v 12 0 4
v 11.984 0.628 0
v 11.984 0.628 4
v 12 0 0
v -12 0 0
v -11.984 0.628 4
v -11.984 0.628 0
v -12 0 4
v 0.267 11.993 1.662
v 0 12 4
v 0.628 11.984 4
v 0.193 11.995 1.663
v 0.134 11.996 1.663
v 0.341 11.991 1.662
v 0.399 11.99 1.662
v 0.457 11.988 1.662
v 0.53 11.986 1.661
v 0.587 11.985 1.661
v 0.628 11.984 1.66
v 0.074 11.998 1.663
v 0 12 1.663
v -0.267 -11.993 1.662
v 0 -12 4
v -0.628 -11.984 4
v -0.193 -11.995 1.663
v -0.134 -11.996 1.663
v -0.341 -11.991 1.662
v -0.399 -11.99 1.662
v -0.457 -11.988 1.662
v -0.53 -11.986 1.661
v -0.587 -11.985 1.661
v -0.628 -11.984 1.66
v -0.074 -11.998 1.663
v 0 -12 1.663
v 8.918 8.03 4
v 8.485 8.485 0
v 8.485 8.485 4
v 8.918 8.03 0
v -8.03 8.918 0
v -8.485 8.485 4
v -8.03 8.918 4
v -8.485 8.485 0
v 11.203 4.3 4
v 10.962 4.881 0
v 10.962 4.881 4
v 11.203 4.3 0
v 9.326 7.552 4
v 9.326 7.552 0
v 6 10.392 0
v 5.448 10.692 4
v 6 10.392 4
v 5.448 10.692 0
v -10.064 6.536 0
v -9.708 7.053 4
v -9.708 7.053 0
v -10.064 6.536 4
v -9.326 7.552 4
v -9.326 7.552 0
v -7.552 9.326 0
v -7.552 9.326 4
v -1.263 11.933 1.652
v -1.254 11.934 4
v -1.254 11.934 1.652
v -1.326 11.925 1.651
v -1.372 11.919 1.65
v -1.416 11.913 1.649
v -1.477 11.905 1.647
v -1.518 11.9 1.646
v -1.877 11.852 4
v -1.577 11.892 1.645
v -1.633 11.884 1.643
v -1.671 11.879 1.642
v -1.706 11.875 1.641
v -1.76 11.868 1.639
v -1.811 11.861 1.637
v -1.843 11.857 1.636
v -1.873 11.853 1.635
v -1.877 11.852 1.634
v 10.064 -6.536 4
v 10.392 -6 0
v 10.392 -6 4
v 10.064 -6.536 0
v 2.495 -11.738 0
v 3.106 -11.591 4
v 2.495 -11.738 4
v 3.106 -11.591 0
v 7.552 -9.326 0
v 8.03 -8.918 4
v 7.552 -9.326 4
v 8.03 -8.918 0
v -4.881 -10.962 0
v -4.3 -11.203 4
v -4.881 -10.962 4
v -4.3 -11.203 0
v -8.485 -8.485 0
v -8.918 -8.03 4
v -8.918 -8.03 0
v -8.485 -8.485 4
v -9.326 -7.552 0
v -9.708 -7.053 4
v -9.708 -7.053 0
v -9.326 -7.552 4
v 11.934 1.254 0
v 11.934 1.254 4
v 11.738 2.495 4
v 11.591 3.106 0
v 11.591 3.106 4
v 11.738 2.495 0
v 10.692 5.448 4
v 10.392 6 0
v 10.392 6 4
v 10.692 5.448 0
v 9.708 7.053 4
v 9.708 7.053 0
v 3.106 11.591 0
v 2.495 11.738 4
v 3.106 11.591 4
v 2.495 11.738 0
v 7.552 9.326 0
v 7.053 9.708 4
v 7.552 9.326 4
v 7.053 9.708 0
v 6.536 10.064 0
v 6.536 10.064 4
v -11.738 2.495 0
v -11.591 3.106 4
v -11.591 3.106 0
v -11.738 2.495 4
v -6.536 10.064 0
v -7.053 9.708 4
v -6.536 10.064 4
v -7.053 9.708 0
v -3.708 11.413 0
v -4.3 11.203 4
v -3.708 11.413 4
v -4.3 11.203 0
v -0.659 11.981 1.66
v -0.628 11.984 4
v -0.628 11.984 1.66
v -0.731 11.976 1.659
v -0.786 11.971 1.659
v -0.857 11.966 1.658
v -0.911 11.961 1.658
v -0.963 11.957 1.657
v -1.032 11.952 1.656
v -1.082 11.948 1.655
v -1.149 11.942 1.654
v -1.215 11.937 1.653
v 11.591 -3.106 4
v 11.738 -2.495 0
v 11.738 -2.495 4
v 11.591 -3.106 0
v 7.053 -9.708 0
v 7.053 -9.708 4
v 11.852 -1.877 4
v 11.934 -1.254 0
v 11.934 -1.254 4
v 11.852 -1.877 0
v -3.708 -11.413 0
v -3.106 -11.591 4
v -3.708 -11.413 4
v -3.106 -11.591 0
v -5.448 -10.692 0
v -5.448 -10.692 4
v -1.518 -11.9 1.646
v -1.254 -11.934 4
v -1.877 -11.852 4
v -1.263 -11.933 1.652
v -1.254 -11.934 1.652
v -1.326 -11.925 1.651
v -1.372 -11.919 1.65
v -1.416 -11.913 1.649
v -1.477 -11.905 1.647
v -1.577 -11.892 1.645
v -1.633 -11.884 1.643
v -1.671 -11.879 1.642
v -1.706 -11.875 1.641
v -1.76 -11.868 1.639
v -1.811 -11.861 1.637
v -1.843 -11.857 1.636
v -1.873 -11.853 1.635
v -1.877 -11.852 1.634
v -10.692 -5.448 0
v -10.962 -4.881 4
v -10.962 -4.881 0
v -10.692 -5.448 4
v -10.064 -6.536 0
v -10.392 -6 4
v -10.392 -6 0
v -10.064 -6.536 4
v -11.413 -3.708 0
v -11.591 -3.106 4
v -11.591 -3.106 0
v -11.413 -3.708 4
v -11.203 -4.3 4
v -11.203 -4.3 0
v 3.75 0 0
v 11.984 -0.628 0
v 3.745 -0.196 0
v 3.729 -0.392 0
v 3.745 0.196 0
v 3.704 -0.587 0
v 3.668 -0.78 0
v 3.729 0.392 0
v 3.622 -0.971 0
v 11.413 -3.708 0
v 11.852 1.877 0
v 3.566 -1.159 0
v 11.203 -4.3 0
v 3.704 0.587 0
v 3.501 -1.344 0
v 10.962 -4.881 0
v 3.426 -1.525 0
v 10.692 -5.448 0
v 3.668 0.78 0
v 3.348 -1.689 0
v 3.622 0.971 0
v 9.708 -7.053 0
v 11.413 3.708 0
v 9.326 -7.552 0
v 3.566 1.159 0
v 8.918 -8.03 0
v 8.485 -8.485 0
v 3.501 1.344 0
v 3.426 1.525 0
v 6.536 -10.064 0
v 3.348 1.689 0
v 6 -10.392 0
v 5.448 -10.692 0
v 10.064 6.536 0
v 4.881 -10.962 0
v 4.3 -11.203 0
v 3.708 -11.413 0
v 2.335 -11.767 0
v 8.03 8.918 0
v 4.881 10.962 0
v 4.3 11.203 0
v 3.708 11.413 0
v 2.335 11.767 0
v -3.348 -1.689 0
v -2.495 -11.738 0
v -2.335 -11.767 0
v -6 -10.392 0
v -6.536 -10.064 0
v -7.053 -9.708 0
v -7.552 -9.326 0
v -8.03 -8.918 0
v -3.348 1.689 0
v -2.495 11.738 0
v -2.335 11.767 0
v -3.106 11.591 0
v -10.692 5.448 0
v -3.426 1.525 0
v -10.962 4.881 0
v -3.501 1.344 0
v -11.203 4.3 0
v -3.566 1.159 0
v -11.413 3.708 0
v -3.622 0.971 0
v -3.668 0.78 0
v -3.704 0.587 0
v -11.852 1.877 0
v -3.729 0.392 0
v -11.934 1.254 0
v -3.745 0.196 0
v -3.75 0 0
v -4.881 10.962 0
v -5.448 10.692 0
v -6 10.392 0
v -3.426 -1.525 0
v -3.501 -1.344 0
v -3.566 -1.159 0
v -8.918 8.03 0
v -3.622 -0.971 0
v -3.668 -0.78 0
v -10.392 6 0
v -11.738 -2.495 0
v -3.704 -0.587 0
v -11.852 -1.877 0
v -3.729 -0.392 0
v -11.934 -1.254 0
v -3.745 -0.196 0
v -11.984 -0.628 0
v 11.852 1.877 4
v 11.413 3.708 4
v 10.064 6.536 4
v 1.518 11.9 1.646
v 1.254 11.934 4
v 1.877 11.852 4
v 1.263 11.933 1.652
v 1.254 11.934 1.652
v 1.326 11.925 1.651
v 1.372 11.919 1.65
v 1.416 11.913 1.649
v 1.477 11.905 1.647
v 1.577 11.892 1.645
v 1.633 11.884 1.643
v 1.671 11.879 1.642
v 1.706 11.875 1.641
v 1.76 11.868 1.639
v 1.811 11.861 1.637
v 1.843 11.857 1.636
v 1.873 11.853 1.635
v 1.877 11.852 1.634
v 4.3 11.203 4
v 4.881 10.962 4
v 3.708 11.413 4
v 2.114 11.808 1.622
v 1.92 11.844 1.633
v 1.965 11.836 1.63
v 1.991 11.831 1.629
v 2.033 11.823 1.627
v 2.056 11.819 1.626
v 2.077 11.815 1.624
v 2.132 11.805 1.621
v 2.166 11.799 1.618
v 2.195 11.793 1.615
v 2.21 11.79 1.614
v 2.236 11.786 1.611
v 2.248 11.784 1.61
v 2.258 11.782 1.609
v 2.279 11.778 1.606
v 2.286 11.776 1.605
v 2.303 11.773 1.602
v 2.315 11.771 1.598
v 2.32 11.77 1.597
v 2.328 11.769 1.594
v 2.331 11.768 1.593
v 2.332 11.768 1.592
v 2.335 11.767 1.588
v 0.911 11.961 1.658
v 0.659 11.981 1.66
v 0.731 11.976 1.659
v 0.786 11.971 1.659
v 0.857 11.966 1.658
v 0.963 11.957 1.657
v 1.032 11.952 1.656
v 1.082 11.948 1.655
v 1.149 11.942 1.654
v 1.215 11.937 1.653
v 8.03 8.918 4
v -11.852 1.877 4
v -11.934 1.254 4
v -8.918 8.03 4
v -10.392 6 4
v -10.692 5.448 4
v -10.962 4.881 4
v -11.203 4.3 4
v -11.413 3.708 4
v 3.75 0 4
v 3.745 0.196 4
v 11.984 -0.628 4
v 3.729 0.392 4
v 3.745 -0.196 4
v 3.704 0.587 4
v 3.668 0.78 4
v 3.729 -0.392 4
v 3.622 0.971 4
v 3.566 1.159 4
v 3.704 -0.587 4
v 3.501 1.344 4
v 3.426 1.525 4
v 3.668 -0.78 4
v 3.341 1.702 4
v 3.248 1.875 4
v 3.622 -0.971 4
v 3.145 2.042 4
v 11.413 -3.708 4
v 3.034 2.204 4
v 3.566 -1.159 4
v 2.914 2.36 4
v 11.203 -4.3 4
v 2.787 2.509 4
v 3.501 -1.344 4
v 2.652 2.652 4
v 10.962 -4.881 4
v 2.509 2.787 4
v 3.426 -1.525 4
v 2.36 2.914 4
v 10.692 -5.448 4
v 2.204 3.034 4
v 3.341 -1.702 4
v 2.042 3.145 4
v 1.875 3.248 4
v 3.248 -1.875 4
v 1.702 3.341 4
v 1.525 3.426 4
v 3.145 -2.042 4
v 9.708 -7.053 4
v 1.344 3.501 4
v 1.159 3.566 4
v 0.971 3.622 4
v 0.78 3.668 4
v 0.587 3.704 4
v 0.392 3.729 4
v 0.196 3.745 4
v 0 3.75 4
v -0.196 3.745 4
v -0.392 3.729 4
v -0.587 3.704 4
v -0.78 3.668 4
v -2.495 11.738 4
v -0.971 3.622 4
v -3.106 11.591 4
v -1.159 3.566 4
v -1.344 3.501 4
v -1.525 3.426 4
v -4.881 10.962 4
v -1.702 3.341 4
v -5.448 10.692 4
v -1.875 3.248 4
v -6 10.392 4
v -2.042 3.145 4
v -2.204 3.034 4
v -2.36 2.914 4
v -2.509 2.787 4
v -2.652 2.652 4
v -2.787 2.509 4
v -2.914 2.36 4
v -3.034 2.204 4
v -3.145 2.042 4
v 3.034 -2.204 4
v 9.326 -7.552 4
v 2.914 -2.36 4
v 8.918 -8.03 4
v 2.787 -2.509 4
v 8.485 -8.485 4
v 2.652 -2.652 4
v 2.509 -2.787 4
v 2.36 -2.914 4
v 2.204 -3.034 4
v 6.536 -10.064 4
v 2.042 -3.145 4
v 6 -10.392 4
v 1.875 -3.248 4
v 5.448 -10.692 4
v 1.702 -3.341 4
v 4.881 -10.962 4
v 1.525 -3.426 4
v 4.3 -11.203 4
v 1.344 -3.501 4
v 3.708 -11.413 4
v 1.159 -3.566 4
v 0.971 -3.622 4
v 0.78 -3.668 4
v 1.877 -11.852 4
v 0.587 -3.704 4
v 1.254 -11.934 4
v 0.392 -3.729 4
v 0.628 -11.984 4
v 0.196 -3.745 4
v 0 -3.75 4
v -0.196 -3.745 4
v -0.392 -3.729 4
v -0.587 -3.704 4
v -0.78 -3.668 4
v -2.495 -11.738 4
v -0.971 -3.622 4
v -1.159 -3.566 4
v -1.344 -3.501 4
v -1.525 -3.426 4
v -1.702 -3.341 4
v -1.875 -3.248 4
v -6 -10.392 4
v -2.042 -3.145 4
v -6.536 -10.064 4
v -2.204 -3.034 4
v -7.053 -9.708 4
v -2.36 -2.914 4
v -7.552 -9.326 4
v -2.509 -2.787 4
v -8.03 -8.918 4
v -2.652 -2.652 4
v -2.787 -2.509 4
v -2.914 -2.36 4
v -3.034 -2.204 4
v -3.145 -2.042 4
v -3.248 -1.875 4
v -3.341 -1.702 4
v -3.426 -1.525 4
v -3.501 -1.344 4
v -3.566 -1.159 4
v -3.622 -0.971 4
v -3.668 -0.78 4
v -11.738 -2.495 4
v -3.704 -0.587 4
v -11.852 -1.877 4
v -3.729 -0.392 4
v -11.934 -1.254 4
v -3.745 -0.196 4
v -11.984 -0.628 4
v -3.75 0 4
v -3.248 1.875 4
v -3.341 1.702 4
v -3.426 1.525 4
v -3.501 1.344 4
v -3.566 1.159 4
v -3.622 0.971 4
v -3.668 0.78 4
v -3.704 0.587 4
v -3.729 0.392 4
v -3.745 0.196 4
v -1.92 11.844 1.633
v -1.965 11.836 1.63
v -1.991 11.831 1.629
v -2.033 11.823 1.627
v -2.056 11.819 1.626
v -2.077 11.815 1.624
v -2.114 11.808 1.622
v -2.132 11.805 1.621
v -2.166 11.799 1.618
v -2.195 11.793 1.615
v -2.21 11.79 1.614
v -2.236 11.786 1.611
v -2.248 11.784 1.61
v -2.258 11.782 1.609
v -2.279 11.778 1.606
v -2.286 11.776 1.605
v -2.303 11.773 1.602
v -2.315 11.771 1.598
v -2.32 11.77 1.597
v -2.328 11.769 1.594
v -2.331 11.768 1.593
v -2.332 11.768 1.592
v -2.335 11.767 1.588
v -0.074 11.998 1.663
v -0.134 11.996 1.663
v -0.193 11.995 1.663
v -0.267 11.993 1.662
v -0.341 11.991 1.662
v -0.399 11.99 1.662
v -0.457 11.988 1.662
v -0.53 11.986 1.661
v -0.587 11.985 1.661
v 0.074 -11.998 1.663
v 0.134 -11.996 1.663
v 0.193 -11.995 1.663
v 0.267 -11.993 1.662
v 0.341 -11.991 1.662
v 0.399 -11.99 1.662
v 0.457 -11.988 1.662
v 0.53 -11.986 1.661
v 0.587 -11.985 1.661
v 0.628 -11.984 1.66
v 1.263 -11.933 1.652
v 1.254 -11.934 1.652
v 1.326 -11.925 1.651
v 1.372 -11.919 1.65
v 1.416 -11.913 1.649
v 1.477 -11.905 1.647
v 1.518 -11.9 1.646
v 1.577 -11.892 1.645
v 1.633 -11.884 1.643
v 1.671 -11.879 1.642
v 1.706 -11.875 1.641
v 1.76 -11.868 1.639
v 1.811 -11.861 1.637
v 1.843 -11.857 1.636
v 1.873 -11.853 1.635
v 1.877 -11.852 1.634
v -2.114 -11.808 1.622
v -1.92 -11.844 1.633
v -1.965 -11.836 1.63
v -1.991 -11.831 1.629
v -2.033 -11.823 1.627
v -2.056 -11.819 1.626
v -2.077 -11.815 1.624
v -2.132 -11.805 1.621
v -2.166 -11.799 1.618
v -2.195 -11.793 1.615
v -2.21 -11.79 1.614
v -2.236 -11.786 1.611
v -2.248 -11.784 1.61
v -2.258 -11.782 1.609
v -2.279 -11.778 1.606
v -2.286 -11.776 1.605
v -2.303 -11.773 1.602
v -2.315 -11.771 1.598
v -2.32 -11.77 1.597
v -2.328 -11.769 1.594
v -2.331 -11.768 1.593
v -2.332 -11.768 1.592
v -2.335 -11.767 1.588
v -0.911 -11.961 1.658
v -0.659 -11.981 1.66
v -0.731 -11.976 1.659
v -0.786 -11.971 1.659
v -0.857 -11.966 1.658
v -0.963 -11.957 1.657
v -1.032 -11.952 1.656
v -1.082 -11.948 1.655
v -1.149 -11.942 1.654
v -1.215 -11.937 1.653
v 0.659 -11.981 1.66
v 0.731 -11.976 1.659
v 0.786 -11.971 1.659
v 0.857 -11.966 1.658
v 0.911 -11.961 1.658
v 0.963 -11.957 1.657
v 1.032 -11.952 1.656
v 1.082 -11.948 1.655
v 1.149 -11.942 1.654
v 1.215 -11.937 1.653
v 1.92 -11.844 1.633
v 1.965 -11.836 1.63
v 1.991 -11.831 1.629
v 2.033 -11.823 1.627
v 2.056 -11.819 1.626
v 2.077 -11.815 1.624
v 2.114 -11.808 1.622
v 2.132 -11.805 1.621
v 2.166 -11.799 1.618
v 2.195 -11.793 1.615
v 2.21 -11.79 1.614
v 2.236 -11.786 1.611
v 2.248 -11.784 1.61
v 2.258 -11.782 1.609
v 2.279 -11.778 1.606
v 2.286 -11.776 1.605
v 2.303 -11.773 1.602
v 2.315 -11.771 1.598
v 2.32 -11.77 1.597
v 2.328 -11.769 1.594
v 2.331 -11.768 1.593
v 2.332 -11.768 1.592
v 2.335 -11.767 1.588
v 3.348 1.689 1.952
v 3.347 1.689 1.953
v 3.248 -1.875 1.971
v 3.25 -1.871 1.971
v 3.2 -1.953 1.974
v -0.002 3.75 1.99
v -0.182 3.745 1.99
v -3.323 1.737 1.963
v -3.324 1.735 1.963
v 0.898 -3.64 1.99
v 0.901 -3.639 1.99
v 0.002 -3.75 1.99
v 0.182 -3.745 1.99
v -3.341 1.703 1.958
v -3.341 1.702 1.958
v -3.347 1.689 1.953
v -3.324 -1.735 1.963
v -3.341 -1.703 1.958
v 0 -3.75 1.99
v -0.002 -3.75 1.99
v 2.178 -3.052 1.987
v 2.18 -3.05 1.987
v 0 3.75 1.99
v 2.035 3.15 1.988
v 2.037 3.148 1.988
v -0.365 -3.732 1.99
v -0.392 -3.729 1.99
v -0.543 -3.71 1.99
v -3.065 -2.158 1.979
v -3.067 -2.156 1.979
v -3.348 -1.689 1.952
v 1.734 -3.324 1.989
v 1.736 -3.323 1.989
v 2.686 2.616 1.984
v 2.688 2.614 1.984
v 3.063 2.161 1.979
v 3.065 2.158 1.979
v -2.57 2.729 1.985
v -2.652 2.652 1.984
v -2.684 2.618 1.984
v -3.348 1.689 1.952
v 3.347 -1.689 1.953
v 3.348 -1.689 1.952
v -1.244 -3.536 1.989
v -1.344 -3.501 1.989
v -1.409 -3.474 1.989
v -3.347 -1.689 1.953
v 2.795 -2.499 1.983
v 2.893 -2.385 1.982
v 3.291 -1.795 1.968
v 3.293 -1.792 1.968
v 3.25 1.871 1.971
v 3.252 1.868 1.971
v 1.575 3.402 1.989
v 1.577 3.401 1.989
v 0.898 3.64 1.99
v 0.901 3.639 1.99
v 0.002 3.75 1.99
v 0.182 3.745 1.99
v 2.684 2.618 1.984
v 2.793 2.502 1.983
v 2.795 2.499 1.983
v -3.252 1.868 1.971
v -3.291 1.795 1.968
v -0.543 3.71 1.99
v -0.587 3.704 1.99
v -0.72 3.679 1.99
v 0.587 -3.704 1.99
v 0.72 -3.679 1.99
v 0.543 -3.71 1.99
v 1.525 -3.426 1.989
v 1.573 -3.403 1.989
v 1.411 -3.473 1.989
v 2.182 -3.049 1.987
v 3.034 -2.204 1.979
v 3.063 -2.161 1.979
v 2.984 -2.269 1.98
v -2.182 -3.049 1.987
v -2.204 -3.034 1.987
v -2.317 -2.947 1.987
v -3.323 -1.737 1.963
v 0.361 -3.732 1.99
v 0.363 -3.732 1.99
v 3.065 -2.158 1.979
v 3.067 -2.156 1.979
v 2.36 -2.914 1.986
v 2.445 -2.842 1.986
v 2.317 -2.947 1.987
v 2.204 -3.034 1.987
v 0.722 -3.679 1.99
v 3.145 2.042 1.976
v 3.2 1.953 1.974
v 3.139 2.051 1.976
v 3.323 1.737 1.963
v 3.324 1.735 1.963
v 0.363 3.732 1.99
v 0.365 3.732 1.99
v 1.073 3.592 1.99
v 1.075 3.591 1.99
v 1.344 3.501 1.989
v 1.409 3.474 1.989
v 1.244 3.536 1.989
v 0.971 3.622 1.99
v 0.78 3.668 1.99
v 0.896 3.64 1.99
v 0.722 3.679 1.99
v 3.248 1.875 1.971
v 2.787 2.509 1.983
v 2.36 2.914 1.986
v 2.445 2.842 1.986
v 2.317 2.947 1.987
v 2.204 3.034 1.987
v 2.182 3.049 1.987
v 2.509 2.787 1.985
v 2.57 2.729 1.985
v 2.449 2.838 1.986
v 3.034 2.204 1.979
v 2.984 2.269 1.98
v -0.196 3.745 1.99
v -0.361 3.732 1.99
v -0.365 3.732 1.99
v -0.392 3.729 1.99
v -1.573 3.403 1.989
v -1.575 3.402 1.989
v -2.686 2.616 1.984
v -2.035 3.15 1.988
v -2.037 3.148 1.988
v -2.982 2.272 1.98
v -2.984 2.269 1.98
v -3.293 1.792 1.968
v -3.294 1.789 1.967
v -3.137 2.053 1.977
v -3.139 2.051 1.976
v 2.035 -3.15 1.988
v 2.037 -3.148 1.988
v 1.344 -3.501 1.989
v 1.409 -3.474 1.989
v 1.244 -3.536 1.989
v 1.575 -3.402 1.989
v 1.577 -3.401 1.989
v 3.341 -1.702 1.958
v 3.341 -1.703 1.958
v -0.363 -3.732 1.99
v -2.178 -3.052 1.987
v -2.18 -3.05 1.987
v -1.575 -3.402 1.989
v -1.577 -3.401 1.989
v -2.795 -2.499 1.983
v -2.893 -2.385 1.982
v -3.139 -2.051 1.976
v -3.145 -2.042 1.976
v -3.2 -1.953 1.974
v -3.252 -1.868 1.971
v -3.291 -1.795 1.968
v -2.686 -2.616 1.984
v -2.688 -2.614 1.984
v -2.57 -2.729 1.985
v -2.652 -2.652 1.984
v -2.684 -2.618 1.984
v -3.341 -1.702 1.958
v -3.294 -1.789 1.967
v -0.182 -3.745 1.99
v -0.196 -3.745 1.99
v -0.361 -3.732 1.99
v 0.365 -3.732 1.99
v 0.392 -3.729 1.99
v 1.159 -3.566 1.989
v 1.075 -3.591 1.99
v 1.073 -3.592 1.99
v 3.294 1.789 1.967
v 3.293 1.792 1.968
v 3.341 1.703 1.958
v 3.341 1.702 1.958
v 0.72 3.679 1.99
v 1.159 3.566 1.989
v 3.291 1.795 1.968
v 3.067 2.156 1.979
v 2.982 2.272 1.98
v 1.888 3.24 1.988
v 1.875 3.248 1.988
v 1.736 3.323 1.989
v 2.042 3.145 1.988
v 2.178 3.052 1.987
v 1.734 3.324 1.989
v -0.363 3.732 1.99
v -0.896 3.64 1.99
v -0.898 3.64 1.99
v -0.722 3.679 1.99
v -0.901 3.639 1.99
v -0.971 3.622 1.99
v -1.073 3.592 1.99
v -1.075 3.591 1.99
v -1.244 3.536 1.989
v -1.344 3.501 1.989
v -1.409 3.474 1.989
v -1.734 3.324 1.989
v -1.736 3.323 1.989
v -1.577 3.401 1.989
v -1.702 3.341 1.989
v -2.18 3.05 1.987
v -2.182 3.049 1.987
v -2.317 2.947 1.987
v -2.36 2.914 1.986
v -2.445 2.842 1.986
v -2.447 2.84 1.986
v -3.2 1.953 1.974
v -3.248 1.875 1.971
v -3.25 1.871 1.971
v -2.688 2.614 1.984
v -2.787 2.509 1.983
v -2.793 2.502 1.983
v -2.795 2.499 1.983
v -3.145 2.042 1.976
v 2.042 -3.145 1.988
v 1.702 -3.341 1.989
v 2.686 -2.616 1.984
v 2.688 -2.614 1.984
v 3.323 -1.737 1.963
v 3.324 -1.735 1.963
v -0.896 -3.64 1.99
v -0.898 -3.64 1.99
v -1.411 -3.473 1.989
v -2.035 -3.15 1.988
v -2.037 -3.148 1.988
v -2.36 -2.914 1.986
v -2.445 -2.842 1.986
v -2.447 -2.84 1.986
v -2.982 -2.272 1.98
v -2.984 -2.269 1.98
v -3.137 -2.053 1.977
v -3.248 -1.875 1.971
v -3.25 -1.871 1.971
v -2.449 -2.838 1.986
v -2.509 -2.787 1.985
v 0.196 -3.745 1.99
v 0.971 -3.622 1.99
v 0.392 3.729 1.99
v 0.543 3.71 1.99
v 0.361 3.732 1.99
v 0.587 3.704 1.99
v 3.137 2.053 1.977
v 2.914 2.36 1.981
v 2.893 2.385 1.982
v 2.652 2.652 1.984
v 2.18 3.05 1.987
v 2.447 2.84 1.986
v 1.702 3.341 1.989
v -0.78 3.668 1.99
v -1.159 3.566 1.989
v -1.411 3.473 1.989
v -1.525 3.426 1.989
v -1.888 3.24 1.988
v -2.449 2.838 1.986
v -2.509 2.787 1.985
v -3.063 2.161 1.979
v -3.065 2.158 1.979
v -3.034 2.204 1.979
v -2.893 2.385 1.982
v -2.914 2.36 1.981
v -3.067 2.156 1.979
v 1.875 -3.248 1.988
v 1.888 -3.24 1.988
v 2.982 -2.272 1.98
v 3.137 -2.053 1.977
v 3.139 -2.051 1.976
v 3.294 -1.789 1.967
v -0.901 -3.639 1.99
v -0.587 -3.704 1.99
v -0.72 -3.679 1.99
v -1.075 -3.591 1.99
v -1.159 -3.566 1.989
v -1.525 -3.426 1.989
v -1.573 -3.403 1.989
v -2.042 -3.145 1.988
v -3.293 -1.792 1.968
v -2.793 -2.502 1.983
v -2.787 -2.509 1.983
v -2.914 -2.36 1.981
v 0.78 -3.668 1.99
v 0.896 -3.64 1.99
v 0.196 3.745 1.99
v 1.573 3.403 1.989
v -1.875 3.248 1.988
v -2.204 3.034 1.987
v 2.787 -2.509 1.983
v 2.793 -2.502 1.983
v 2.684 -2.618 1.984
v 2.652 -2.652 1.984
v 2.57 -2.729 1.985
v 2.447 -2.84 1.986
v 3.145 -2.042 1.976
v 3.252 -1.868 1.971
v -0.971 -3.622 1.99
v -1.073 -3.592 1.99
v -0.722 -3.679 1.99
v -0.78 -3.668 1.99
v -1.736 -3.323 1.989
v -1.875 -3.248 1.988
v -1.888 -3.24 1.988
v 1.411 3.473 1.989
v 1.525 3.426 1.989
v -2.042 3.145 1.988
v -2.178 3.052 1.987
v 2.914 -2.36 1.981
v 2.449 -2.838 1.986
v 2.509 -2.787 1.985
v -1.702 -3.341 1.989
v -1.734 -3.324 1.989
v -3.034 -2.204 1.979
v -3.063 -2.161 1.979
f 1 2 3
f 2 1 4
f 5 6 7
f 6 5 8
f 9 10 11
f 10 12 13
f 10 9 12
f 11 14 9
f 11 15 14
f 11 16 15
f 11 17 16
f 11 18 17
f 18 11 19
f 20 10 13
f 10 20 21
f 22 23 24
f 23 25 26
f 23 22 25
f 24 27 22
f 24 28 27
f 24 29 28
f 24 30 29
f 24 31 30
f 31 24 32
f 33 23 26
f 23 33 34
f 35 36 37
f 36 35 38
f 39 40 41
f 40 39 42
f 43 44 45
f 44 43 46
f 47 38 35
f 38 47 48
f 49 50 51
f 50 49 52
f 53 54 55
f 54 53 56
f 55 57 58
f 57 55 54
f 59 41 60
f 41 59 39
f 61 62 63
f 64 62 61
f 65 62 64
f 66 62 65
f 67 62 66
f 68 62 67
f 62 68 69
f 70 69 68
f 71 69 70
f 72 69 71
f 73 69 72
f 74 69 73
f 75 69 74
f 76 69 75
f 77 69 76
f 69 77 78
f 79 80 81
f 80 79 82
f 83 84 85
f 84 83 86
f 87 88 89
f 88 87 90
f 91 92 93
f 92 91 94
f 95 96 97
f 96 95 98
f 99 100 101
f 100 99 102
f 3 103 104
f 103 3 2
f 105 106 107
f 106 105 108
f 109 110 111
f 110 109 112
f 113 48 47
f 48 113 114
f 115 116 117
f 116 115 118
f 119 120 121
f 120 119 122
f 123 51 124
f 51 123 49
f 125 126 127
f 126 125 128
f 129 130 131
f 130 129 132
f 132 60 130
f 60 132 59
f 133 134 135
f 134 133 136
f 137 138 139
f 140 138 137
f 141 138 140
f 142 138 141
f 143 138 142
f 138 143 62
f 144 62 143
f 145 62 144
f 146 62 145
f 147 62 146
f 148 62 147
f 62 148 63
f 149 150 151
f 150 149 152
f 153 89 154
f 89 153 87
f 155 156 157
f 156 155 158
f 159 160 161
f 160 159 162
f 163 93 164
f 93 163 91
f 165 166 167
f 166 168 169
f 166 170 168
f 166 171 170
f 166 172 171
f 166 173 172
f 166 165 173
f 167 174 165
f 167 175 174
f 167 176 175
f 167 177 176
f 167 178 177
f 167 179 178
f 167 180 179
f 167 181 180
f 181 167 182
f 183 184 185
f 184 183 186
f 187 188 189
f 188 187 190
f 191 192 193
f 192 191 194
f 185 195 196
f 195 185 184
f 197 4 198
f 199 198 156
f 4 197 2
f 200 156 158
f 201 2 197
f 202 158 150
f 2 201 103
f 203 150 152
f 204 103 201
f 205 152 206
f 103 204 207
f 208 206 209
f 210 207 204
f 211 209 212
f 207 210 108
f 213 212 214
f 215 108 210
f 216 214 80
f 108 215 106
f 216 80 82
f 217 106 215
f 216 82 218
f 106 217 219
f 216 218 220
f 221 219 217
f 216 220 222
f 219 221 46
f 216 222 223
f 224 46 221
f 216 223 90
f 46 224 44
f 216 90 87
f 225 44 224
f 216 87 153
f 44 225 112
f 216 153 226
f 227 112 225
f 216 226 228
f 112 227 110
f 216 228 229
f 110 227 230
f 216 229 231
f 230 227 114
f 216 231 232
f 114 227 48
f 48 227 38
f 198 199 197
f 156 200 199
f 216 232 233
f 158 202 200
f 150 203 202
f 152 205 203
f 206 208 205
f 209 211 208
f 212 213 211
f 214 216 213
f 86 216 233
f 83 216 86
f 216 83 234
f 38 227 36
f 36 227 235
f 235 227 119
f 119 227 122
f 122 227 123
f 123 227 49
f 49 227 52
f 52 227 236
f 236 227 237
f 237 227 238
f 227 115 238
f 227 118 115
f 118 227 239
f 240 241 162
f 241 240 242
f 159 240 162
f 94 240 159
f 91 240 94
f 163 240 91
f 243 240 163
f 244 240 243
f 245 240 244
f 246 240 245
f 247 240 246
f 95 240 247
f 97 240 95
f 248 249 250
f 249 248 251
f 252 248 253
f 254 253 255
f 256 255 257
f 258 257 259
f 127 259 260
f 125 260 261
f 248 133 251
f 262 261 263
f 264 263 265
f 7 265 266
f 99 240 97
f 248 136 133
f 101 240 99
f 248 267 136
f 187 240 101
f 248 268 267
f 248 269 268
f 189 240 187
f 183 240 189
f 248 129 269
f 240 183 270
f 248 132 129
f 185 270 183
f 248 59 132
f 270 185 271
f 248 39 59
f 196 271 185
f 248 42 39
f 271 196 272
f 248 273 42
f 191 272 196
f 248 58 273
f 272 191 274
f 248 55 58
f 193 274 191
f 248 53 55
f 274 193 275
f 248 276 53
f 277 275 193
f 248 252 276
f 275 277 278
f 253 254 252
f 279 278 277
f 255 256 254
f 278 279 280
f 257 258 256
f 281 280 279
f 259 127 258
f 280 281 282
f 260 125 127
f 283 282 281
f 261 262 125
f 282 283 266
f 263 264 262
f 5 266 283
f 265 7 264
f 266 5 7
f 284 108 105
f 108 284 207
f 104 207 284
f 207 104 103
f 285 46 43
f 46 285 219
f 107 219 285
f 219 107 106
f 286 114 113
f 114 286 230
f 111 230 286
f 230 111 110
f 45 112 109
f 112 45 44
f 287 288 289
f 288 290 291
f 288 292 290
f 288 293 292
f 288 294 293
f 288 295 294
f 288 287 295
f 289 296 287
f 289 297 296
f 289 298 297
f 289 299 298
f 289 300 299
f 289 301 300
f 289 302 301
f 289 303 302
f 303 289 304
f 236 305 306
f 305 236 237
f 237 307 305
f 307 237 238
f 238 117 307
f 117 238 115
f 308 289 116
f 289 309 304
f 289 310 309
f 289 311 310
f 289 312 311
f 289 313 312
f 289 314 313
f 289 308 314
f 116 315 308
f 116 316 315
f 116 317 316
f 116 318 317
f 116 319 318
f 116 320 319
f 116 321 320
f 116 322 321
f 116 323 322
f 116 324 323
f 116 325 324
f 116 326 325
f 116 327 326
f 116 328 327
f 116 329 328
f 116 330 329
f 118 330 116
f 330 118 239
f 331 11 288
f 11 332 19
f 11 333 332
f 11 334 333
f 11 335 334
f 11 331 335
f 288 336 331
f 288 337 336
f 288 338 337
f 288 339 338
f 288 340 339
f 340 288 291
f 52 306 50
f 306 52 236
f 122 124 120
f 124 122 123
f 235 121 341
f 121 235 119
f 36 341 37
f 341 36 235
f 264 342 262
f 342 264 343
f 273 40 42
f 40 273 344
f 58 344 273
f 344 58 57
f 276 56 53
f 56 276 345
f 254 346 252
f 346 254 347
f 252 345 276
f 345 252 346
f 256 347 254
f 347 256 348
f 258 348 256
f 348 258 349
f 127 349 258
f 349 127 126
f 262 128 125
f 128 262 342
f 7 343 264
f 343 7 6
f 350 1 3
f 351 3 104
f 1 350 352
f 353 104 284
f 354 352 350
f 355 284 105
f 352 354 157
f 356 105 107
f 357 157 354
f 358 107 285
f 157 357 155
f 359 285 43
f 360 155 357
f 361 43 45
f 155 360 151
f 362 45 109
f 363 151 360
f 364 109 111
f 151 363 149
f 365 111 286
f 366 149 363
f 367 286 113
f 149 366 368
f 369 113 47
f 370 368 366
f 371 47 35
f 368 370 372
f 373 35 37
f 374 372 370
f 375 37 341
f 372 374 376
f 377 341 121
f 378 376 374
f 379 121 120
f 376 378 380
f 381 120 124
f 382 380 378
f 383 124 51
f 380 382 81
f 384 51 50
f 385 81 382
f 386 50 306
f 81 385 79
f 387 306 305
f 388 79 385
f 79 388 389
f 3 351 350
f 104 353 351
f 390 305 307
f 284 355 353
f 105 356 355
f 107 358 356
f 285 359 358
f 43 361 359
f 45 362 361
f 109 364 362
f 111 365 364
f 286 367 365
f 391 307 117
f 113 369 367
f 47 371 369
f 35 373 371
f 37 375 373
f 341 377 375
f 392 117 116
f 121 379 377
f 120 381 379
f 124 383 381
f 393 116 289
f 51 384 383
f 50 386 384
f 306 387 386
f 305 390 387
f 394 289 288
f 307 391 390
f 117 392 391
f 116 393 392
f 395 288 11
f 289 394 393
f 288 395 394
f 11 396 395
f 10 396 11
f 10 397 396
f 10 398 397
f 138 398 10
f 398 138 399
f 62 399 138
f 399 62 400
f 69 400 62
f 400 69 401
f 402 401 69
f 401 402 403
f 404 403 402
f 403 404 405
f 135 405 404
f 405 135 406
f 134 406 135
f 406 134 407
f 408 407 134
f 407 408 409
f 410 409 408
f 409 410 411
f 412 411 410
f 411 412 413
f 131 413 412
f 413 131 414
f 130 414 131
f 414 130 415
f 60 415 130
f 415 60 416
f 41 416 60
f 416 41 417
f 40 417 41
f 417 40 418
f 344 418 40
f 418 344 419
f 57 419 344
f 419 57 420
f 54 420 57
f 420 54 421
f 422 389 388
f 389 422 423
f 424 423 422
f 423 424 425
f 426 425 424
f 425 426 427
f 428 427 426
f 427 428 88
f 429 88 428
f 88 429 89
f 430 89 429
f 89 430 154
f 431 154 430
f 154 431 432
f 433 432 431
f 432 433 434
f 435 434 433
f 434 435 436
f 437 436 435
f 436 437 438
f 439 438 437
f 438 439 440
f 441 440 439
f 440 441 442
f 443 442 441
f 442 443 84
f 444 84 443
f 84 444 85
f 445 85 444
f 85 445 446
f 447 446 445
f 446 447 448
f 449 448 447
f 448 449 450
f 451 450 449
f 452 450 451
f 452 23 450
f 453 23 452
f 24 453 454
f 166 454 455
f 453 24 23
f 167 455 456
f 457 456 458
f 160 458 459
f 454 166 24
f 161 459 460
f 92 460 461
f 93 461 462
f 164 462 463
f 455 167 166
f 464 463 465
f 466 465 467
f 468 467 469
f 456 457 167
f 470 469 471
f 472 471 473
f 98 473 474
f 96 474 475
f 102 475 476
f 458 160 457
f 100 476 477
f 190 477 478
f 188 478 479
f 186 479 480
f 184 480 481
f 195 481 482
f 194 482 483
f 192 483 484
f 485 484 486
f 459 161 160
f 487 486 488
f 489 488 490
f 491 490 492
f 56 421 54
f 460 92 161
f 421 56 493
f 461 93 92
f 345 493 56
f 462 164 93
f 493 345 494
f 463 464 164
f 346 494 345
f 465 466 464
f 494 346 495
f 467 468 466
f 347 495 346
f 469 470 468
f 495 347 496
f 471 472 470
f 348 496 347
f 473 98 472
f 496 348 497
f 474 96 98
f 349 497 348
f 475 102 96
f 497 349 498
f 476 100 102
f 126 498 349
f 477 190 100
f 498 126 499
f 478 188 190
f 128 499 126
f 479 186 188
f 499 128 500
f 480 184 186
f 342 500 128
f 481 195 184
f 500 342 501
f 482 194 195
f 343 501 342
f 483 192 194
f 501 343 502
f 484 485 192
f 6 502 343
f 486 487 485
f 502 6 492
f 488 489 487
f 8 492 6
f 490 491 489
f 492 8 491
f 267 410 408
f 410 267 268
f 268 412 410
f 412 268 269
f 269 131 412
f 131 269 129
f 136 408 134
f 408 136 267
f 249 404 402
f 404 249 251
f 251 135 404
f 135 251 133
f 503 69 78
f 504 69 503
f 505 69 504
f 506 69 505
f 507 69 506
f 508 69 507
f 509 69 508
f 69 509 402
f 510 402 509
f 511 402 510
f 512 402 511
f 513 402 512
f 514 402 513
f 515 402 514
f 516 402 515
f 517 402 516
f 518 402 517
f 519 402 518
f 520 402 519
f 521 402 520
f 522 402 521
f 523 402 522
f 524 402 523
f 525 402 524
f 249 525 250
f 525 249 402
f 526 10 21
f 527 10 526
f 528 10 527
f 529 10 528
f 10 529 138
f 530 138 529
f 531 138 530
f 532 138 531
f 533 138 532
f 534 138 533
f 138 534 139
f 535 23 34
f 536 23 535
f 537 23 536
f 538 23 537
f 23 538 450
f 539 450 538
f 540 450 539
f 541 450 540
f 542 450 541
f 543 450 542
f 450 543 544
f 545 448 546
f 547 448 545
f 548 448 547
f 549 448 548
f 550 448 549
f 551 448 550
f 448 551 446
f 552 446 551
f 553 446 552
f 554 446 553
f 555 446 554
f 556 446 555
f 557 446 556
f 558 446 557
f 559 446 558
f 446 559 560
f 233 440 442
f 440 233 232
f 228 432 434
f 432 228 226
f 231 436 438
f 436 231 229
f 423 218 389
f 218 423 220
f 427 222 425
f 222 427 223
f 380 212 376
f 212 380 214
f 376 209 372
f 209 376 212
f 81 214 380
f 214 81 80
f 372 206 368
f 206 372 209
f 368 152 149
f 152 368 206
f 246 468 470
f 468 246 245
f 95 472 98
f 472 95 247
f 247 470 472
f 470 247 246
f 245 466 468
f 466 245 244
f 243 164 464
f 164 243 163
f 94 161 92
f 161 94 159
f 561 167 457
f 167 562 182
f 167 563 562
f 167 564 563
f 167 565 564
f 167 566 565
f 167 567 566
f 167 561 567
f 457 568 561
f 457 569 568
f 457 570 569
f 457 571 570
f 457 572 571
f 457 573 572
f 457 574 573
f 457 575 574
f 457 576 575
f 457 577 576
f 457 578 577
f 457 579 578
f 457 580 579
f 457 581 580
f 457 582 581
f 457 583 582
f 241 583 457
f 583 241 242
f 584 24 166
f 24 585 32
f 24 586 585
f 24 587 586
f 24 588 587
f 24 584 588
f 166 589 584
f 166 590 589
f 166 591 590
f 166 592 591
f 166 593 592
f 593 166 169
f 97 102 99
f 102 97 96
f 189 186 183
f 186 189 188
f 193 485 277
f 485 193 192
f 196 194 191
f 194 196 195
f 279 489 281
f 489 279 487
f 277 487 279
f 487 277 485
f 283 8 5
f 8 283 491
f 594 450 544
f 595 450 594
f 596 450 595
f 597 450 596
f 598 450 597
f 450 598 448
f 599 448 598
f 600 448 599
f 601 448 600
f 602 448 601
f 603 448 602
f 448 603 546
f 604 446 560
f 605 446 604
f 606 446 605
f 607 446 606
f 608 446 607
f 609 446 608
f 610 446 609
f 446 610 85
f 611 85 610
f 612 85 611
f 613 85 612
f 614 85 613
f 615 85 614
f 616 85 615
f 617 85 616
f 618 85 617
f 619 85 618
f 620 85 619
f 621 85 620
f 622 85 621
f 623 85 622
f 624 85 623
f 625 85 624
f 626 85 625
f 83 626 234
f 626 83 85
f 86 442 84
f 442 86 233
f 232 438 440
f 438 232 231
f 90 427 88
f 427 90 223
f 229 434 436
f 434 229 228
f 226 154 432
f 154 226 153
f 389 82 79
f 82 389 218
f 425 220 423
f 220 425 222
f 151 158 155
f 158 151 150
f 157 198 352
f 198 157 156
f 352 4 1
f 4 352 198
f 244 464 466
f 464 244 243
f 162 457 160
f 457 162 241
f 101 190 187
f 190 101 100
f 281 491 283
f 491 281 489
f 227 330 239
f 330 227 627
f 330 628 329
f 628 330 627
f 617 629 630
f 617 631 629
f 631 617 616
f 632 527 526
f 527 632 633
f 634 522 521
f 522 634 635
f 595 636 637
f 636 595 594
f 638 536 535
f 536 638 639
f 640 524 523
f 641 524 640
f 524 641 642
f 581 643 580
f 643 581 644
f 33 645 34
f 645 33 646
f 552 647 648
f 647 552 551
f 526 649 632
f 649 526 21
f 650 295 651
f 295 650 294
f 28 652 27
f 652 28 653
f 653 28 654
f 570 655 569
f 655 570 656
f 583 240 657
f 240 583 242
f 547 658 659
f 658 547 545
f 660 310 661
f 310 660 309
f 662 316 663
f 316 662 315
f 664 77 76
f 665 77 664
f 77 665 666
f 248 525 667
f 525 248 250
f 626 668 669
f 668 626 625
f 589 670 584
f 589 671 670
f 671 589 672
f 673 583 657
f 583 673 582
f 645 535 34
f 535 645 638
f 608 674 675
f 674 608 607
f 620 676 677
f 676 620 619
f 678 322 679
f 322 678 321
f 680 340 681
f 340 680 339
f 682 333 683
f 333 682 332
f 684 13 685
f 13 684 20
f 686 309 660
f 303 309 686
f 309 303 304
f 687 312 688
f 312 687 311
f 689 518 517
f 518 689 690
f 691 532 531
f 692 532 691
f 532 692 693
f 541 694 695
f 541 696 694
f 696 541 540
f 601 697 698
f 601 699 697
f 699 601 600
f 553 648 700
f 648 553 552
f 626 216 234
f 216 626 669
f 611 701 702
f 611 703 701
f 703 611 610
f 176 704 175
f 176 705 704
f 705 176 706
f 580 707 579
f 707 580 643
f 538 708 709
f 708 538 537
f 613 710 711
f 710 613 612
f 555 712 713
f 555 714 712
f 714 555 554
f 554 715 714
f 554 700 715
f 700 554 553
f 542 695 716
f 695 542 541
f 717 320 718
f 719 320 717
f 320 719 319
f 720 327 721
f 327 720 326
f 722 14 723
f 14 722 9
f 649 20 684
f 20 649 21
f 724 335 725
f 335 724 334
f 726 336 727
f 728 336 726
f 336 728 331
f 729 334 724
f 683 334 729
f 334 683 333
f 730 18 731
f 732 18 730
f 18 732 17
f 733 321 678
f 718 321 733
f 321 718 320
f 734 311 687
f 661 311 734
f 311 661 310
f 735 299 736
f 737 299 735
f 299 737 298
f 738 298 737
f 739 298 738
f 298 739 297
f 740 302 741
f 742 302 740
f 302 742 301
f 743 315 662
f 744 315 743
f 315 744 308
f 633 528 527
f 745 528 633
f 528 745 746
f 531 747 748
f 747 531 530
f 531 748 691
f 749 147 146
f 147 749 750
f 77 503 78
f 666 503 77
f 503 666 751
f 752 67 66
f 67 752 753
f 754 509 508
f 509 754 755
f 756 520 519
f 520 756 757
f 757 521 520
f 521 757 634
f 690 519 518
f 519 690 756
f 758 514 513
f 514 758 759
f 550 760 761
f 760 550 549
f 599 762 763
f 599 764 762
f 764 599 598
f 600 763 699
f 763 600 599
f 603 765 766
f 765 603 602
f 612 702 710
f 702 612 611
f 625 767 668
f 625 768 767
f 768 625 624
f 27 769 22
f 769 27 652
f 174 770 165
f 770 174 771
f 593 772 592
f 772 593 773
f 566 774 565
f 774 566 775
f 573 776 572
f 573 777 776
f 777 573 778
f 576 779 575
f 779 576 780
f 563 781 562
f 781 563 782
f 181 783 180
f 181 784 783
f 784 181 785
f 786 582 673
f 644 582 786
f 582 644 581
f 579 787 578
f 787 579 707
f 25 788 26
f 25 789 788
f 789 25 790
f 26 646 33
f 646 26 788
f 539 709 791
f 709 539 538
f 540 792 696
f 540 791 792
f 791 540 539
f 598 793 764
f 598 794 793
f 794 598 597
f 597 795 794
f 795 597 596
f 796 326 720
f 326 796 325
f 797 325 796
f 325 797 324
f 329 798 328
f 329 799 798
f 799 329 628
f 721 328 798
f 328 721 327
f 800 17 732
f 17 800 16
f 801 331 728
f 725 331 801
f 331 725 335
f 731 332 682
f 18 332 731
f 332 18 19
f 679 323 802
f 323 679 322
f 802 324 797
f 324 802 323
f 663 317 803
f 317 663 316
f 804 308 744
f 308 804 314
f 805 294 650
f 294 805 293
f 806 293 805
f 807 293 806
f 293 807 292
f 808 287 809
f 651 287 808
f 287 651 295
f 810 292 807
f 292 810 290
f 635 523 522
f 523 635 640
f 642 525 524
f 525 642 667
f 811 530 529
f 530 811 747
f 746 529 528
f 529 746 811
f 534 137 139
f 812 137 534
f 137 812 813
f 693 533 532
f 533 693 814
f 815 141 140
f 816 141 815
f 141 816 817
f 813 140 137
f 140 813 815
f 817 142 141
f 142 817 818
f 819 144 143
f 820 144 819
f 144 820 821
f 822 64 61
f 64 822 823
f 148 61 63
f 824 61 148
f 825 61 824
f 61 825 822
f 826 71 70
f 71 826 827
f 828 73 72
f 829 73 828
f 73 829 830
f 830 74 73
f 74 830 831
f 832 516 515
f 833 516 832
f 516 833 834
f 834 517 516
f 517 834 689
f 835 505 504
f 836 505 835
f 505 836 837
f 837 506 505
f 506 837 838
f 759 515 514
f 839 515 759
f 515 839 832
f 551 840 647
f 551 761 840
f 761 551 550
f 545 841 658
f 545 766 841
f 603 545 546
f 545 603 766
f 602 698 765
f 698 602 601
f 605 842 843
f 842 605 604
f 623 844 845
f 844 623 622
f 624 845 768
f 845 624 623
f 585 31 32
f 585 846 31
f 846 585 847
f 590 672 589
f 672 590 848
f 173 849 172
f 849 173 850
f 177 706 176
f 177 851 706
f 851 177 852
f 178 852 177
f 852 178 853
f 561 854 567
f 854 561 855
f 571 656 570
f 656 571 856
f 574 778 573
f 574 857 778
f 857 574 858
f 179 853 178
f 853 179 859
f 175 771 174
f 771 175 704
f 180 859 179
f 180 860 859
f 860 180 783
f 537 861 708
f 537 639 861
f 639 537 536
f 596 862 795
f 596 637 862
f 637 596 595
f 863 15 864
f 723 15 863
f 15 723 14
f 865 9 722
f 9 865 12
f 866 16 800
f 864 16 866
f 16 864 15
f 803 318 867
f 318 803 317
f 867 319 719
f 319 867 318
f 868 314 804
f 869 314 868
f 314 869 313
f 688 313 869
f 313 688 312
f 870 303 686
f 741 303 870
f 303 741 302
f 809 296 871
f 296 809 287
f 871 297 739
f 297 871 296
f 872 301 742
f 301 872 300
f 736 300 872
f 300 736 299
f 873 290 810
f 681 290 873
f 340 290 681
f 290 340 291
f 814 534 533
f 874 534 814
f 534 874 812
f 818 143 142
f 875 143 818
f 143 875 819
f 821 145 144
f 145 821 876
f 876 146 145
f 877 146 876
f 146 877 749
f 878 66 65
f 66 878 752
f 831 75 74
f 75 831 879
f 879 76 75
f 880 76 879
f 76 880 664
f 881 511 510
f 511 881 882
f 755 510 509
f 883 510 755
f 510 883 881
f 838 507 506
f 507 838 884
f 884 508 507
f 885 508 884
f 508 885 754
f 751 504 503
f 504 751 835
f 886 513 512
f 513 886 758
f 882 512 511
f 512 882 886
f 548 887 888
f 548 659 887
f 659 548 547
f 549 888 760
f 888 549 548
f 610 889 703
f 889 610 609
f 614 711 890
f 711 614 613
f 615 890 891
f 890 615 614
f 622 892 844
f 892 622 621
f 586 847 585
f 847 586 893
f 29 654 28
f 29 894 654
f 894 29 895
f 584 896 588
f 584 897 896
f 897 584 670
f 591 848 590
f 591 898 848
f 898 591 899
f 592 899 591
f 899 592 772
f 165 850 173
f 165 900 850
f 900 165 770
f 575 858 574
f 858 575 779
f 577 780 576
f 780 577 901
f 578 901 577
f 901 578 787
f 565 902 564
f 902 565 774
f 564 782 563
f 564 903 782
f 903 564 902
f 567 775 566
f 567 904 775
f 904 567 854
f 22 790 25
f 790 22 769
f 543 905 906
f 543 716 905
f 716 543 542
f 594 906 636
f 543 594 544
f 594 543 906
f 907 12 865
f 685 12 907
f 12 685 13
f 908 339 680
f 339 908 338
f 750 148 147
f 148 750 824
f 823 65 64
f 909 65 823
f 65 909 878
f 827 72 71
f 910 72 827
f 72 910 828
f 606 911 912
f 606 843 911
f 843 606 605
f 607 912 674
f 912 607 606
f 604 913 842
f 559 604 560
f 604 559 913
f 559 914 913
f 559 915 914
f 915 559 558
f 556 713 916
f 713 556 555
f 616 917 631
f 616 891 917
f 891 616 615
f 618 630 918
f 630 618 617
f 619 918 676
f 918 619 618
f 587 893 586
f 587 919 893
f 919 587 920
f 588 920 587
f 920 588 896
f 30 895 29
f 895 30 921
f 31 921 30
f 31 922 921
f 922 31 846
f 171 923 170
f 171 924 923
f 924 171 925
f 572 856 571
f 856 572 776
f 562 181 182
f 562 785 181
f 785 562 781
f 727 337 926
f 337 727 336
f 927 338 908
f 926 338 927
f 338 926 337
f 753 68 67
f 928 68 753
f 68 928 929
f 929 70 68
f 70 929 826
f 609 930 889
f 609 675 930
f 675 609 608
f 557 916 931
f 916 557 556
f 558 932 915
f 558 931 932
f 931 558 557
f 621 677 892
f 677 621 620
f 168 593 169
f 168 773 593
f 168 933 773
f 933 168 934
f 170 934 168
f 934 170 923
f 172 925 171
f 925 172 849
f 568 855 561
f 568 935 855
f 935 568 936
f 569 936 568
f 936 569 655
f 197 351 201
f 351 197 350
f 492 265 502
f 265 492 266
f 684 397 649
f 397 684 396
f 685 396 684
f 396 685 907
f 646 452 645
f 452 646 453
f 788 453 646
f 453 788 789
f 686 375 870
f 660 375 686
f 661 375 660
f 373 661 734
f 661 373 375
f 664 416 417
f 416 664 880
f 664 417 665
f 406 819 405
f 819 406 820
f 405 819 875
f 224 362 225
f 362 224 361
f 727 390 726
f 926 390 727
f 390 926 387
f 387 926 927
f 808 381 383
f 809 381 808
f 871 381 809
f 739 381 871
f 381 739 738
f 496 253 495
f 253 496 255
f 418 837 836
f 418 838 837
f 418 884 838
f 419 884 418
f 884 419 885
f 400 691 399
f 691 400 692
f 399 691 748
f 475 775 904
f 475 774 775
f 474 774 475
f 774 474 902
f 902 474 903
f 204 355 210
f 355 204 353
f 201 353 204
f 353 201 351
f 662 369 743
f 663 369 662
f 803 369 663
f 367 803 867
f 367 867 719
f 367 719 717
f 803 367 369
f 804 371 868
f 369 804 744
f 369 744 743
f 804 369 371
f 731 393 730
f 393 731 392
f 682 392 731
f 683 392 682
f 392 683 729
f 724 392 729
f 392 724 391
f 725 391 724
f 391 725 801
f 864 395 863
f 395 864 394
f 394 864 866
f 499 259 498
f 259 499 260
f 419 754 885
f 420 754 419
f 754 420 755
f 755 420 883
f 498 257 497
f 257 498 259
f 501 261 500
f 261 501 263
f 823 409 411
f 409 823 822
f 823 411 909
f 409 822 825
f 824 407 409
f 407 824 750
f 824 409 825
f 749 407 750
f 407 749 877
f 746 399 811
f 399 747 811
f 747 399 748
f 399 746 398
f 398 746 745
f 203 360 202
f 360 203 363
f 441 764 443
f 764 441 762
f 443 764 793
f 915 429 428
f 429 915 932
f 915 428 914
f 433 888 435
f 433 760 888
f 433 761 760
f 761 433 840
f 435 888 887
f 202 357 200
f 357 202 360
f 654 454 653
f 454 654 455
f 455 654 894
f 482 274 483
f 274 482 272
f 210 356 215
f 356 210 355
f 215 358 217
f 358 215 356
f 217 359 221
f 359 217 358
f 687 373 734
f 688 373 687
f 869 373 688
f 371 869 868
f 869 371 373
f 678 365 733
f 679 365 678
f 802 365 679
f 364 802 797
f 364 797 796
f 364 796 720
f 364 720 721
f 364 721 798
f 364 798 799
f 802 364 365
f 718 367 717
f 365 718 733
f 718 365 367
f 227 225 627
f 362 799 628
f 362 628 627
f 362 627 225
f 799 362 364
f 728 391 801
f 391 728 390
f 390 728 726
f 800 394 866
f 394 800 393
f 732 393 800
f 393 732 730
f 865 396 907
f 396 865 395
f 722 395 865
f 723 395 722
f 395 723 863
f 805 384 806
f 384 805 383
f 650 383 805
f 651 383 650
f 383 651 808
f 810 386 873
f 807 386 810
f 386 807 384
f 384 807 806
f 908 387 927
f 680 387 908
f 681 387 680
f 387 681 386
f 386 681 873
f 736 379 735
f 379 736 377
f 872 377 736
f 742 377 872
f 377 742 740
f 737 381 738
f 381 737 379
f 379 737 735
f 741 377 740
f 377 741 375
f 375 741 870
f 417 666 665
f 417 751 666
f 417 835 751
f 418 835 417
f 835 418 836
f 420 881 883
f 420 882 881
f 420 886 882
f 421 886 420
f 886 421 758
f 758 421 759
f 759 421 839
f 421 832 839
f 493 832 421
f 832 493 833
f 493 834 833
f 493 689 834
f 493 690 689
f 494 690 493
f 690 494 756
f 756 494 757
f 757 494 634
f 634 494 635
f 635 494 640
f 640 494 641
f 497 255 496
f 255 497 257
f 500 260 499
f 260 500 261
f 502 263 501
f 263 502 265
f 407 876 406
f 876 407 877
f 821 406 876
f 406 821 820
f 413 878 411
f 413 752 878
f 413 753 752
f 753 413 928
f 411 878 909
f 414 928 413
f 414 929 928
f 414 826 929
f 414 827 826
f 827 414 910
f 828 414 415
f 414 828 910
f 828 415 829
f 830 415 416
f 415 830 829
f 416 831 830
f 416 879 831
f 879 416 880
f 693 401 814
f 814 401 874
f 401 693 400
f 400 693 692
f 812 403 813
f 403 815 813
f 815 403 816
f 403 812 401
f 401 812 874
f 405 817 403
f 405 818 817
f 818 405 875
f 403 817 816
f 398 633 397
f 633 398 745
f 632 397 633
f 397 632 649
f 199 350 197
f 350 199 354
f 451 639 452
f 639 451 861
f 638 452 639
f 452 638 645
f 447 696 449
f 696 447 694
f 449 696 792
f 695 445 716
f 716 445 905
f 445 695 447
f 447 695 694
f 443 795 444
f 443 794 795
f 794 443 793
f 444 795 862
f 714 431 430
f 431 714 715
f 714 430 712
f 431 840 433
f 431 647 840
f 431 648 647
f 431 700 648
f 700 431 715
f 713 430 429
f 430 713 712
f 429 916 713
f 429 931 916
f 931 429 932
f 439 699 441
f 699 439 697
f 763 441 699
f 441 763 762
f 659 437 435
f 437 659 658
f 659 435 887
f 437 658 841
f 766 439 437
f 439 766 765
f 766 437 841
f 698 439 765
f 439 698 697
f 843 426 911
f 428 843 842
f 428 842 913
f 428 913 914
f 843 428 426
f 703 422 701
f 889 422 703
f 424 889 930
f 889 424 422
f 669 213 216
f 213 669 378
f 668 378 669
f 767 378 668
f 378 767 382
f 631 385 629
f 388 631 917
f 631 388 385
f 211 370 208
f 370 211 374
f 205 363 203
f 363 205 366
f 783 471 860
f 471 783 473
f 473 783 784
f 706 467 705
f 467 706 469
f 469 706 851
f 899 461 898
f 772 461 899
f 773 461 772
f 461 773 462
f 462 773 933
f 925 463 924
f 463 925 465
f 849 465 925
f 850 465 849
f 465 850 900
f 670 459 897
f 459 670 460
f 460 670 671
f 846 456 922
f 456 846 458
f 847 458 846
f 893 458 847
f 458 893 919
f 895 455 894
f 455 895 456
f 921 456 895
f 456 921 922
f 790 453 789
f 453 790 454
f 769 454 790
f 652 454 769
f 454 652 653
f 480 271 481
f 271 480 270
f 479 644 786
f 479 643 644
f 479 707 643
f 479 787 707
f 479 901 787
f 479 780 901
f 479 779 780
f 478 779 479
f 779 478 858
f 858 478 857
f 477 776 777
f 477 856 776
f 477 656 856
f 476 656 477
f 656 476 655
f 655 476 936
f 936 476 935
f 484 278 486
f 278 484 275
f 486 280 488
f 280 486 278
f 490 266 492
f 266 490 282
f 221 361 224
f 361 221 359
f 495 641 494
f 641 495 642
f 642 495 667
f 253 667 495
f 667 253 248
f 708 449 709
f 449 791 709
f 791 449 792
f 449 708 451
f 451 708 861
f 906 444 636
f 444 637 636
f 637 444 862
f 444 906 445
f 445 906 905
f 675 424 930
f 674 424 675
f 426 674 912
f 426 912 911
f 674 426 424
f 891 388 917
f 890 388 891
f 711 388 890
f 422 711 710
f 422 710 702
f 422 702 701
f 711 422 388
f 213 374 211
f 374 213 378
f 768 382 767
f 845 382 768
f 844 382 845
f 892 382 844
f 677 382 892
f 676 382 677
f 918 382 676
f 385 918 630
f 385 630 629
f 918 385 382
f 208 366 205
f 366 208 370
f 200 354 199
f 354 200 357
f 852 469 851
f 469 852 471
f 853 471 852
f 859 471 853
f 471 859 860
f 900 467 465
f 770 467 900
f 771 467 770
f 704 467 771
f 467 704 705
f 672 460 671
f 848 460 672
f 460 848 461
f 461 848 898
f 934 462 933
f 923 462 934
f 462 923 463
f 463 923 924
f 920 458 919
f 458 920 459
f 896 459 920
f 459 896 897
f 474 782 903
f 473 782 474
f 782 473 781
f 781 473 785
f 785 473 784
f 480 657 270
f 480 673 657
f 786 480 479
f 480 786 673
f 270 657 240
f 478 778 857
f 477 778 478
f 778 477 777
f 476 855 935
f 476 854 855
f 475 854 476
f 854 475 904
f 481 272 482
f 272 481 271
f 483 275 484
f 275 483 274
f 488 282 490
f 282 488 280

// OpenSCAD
$fn=120;

difference(){
cylinder(d=24,h=4);
hull(){
cylinder(d=7,h=2);
translate([0,14,0]) cylinder(d=4.2,h=1.5);
translate([0,-14,0]) cylinder(d=4.2,h=1.5);
}
cylinder(d=7.5,h=4);
}
